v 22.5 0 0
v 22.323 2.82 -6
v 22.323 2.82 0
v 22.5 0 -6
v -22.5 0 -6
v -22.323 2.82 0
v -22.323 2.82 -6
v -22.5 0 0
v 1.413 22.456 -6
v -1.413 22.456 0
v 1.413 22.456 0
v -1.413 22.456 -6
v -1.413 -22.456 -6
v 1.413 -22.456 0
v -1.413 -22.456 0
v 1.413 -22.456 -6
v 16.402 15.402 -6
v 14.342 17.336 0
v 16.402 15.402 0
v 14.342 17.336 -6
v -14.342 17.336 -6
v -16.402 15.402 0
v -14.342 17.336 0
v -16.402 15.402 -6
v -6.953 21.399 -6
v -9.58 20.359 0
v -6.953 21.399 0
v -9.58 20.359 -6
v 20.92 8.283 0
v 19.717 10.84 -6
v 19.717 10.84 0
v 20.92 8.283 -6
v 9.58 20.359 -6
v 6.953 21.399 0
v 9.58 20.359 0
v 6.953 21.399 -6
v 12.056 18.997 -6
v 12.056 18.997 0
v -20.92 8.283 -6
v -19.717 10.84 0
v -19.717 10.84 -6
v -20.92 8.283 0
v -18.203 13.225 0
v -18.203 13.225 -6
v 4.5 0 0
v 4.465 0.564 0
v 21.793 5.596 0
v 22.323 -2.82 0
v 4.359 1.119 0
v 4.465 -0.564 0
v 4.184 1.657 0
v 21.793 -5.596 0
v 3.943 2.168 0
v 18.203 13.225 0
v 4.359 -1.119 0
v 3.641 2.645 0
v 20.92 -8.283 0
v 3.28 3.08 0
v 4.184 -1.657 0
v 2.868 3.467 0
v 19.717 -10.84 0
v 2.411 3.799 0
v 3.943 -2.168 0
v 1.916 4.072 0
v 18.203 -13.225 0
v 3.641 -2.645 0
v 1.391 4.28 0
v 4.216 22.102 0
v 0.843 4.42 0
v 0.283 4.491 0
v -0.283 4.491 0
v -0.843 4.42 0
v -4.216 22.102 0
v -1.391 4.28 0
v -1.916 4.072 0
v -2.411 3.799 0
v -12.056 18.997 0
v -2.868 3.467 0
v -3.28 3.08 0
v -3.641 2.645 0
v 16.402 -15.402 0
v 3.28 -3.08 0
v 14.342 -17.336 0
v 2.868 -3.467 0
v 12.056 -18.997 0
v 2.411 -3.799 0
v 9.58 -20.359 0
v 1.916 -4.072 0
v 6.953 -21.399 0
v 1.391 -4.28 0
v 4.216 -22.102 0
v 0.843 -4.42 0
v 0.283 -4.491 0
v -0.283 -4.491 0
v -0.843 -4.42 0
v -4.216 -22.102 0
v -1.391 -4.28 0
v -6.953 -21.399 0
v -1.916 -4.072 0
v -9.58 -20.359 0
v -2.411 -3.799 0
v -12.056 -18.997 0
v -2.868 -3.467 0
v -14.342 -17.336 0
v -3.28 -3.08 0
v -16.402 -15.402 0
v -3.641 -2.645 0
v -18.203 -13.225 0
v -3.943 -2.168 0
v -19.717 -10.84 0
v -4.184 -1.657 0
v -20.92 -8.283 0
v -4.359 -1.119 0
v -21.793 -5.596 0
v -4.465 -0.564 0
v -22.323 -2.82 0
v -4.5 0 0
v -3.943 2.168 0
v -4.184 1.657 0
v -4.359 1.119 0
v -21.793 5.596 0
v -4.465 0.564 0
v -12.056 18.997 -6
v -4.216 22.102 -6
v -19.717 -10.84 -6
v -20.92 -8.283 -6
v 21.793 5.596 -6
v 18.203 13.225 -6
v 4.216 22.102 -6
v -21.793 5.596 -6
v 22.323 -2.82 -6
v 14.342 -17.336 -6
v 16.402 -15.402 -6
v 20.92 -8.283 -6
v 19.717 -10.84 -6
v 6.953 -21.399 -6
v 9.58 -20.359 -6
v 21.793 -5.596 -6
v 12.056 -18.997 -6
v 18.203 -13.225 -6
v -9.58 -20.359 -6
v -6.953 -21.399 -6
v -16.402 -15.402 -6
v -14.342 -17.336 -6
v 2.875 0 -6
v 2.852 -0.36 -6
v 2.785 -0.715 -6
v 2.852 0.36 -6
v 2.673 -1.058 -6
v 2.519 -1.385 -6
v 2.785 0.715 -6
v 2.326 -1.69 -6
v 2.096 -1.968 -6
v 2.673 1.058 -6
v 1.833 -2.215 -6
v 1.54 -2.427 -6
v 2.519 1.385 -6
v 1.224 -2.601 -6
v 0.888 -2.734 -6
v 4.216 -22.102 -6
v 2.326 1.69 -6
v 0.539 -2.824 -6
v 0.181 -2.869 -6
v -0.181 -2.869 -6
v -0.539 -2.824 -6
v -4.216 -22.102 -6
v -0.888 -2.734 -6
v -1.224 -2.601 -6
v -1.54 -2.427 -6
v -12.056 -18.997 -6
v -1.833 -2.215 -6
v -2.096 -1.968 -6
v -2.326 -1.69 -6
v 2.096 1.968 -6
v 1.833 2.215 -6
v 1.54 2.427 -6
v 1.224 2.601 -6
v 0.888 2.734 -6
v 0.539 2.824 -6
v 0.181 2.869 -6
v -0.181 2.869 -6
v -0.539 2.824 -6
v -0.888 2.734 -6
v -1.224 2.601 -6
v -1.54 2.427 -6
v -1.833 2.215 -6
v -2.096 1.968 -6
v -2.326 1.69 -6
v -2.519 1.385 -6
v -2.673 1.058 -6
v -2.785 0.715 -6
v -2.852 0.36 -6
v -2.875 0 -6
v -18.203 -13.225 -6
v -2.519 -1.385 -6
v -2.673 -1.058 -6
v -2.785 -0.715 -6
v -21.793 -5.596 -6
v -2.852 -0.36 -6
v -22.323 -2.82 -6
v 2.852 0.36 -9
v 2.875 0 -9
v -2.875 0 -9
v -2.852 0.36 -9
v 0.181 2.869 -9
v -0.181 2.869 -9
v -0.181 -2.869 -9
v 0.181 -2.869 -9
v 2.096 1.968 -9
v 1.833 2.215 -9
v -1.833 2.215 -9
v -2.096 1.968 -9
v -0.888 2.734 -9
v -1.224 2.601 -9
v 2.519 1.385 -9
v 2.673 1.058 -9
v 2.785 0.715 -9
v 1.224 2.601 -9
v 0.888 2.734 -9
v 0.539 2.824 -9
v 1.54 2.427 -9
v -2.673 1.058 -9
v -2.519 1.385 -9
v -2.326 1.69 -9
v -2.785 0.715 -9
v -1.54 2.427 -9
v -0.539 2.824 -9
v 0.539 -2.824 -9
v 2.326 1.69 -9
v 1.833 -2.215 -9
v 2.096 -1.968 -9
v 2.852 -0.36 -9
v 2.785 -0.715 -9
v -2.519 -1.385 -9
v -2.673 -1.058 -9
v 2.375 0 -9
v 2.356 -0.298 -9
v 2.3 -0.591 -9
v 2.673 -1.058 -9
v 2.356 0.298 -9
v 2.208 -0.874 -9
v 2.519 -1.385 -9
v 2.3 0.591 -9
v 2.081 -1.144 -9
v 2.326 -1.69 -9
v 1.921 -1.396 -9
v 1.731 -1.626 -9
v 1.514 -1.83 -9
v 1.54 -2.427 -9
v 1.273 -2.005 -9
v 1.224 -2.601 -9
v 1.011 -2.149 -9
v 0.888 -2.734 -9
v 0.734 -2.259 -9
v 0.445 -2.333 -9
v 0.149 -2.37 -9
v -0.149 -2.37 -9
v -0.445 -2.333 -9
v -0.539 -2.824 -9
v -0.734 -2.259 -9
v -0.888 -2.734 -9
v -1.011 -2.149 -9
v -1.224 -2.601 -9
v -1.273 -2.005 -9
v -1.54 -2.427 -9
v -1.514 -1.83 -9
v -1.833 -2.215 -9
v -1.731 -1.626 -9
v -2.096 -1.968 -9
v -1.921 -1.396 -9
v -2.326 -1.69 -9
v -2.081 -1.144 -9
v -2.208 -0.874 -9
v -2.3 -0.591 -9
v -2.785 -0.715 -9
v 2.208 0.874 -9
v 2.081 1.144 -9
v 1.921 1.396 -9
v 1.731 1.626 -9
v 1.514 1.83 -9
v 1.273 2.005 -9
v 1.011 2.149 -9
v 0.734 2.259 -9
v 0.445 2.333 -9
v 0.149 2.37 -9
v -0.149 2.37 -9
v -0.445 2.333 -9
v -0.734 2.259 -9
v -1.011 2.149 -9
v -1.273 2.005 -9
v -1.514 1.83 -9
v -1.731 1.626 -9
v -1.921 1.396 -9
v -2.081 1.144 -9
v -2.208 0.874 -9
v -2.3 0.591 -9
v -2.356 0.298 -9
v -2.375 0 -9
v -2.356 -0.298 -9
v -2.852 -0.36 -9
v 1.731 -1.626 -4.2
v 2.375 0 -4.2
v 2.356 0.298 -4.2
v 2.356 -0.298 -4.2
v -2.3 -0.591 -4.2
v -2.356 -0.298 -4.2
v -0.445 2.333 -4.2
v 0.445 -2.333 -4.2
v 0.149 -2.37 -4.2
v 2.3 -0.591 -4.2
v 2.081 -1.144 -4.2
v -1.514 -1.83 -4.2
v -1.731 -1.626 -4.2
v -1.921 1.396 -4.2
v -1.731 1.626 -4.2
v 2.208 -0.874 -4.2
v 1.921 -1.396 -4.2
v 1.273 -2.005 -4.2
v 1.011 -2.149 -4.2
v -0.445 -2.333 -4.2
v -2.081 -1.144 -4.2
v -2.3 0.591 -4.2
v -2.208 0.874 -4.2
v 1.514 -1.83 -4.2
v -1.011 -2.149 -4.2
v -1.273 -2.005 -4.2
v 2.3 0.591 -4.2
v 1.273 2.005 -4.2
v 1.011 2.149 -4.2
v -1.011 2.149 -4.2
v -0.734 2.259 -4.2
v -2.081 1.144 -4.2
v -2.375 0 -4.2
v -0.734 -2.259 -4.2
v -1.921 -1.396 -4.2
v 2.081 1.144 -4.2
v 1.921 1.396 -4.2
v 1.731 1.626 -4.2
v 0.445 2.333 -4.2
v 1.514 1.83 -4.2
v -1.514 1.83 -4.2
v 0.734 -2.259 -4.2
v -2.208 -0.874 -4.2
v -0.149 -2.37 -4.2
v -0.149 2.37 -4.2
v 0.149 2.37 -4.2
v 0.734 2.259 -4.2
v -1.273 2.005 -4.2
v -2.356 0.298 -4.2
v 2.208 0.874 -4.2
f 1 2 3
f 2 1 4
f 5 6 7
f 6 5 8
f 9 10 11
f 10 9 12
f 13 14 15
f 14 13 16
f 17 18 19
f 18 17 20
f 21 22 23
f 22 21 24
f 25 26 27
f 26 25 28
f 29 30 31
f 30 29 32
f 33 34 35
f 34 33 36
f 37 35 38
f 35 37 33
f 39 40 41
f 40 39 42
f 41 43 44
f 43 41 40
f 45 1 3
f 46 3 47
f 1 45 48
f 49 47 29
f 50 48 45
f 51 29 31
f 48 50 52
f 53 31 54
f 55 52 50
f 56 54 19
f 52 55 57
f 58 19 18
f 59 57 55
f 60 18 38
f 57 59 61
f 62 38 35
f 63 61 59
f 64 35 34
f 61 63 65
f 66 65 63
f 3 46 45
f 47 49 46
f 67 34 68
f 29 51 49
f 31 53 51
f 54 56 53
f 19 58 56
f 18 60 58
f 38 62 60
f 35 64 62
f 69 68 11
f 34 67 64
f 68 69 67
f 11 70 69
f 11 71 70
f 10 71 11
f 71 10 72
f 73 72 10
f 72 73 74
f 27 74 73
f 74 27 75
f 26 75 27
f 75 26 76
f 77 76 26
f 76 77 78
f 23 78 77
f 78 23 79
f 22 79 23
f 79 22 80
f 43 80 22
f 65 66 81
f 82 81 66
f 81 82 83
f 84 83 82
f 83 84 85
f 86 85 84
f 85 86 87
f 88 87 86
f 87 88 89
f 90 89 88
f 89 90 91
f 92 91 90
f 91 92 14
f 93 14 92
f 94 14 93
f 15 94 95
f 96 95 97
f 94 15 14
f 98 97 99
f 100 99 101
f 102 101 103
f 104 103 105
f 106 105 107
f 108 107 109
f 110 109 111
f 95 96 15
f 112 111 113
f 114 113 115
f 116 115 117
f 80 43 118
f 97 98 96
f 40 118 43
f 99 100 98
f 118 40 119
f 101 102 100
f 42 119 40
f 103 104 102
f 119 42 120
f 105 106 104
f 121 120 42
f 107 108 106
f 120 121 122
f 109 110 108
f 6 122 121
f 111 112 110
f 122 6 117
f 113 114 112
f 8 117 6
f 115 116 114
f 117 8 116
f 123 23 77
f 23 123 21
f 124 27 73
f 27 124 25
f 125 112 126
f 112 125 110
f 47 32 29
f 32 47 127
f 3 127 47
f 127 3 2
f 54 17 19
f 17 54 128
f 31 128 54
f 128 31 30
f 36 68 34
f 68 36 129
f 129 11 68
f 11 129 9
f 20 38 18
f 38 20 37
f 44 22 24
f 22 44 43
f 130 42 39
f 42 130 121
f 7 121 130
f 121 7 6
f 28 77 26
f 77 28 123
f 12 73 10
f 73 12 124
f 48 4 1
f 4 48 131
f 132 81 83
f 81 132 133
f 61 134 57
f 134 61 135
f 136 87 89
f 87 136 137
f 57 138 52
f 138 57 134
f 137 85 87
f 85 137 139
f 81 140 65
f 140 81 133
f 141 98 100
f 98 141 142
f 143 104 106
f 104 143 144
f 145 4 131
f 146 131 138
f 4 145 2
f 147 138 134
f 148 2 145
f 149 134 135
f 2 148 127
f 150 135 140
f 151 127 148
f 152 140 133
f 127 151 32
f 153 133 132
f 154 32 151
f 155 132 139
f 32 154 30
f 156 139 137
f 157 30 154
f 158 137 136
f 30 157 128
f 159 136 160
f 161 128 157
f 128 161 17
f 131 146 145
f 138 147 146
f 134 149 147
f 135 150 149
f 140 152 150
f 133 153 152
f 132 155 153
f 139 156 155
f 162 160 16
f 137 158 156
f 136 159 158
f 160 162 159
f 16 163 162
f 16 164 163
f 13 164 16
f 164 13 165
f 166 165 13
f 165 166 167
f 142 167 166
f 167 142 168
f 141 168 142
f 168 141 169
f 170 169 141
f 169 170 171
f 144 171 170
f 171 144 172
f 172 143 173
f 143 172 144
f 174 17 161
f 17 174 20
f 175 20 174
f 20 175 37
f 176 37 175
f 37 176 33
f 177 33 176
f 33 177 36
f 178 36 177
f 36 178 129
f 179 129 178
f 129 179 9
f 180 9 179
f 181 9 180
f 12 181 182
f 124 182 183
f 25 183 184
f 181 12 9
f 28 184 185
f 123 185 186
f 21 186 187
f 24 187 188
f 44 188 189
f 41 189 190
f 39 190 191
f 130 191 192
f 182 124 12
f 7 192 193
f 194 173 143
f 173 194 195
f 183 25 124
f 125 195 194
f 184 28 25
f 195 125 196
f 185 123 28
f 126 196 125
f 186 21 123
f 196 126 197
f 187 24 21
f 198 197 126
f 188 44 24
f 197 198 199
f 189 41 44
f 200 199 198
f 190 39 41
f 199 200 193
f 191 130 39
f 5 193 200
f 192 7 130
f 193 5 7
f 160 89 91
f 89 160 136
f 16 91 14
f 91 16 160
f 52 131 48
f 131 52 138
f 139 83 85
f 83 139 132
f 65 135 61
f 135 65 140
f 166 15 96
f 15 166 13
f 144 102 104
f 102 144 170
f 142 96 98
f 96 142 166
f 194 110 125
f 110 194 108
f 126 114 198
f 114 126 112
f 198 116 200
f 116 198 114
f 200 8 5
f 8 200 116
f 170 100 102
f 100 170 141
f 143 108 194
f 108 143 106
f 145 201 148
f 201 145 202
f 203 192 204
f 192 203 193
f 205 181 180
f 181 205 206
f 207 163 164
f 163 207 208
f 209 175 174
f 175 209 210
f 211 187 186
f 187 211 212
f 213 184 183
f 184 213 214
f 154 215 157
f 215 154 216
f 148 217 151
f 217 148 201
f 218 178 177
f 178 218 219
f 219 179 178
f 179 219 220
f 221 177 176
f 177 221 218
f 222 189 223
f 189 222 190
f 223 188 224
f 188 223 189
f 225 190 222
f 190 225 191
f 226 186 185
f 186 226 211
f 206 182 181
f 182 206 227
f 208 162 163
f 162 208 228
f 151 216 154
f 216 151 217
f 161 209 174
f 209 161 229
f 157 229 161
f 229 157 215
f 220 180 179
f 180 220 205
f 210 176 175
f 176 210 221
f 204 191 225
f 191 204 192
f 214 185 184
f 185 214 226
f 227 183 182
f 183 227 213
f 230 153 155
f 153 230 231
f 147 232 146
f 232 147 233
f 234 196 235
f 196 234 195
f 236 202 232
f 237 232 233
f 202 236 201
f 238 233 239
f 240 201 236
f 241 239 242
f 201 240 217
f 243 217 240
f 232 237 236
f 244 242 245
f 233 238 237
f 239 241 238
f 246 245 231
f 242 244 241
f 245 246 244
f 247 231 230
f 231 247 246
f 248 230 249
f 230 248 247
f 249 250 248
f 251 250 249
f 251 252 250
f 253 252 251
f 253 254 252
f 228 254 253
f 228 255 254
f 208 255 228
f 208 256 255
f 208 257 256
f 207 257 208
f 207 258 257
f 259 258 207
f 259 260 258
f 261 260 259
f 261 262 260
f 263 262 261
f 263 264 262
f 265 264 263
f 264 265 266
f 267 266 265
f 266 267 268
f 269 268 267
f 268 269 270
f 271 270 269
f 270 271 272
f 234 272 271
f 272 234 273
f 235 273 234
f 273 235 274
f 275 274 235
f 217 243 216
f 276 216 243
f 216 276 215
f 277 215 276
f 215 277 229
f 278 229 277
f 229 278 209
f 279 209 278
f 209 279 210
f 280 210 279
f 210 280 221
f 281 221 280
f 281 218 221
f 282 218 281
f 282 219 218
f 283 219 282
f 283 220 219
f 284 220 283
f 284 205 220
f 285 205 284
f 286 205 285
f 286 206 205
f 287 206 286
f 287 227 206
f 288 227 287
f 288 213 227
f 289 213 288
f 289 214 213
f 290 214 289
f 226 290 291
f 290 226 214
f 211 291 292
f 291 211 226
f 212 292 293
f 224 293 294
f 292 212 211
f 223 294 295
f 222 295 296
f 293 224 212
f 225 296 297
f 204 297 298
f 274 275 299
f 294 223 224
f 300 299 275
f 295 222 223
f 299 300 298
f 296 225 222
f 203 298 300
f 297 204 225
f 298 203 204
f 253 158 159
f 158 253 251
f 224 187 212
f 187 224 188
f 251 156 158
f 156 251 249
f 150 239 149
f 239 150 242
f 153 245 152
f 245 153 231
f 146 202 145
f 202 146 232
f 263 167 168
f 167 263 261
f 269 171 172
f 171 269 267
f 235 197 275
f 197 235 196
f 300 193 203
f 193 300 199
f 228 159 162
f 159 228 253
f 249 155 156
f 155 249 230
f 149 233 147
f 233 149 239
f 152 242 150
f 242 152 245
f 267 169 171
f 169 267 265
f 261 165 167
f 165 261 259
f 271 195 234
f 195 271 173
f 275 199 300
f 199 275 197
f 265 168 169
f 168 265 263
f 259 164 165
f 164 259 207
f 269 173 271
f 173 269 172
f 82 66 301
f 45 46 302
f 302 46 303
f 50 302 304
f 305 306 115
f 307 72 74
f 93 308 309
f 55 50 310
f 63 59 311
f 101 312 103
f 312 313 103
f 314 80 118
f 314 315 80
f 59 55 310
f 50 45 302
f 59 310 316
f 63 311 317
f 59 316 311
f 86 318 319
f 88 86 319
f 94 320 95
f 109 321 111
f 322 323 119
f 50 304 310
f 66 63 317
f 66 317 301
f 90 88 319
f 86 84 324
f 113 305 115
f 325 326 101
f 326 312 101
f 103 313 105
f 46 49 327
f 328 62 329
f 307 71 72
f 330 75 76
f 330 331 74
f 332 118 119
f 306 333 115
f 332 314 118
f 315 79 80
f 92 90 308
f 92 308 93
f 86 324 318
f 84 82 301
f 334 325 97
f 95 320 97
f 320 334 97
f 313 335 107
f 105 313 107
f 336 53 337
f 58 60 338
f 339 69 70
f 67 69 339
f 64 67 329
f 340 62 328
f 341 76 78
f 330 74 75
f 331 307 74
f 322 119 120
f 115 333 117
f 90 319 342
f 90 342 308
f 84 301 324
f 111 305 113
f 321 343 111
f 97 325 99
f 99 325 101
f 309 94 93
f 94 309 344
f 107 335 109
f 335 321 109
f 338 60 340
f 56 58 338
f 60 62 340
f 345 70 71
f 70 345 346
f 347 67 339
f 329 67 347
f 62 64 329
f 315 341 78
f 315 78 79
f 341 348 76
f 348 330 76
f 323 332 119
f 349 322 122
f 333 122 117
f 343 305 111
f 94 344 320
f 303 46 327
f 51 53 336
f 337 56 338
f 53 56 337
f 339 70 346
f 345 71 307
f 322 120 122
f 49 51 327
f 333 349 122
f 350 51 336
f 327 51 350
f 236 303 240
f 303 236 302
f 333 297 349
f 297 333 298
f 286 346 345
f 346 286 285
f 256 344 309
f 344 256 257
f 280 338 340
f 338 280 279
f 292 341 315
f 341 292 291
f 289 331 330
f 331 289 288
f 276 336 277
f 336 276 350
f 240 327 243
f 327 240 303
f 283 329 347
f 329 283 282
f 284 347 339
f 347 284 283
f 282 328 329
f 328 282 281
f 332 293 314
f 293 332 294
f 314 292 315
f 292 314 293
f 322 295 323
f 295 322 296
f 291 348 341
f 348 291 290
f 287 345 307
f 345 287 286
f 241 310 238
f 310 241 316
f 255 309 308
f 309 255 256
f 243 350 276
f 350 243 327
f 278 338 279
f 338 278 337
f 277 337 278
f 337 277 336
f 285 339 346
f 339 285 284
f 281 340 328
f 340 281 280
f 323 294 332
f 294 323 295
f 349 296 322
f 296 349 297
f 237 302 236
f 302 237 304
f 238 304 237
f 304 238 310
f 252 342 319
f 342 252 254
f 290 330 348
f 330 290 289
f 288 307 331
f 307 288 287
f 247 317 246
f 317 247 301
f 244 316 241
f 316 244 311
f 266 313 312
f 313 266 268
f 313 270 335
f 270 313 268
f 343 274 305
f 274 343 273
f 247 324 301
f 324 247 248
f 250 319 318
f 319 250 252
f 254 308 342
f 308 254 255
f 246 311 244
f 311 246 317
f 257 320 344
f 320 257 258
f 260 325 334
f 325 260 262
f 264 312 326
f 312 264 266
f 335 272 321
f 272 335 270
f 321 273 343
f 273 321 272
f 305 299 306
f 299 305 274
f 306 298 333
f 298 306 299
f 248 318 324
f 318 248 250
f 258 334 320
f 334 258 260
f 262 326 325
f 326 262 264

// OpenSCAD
$fn = 50;


difference() {
	union() {
		translate(v = [0, 0, -6.0000000000]) {
			cylinder(h = 6, r = 22.5000000000);
		}
		translate(v = [0, 0, -9.0000000000]) {
			cylinder(h = 9, r = 2.8750000000);
		}
	}
	union() {
		translate(v = [0, 0, 0]) {
			rotate(a = [0, 0, 0]) {
				difference() {
					union() {
						translate(v = [0, 0, -9.0000000000]) {
							cylinder(h = 9, r = 2.2500000000);
						}
						translate(v = [0, 0, -4.2000000000]) {
							cylinder(h = 4.2000000000, r1 = 2.3750000000, r2 = 4.5000000000);
						}
						translate(v = [0, 0, -9.0000000000]) {
							cylinder(h = 9, r = 2.3750000000);
						}
						translate(v = [0, 0, -9.0000000000]) {
							cylinder(h = 9, r = 2.2500000000);
						}
					}
					union();
				}
			}
		}
	}
}
